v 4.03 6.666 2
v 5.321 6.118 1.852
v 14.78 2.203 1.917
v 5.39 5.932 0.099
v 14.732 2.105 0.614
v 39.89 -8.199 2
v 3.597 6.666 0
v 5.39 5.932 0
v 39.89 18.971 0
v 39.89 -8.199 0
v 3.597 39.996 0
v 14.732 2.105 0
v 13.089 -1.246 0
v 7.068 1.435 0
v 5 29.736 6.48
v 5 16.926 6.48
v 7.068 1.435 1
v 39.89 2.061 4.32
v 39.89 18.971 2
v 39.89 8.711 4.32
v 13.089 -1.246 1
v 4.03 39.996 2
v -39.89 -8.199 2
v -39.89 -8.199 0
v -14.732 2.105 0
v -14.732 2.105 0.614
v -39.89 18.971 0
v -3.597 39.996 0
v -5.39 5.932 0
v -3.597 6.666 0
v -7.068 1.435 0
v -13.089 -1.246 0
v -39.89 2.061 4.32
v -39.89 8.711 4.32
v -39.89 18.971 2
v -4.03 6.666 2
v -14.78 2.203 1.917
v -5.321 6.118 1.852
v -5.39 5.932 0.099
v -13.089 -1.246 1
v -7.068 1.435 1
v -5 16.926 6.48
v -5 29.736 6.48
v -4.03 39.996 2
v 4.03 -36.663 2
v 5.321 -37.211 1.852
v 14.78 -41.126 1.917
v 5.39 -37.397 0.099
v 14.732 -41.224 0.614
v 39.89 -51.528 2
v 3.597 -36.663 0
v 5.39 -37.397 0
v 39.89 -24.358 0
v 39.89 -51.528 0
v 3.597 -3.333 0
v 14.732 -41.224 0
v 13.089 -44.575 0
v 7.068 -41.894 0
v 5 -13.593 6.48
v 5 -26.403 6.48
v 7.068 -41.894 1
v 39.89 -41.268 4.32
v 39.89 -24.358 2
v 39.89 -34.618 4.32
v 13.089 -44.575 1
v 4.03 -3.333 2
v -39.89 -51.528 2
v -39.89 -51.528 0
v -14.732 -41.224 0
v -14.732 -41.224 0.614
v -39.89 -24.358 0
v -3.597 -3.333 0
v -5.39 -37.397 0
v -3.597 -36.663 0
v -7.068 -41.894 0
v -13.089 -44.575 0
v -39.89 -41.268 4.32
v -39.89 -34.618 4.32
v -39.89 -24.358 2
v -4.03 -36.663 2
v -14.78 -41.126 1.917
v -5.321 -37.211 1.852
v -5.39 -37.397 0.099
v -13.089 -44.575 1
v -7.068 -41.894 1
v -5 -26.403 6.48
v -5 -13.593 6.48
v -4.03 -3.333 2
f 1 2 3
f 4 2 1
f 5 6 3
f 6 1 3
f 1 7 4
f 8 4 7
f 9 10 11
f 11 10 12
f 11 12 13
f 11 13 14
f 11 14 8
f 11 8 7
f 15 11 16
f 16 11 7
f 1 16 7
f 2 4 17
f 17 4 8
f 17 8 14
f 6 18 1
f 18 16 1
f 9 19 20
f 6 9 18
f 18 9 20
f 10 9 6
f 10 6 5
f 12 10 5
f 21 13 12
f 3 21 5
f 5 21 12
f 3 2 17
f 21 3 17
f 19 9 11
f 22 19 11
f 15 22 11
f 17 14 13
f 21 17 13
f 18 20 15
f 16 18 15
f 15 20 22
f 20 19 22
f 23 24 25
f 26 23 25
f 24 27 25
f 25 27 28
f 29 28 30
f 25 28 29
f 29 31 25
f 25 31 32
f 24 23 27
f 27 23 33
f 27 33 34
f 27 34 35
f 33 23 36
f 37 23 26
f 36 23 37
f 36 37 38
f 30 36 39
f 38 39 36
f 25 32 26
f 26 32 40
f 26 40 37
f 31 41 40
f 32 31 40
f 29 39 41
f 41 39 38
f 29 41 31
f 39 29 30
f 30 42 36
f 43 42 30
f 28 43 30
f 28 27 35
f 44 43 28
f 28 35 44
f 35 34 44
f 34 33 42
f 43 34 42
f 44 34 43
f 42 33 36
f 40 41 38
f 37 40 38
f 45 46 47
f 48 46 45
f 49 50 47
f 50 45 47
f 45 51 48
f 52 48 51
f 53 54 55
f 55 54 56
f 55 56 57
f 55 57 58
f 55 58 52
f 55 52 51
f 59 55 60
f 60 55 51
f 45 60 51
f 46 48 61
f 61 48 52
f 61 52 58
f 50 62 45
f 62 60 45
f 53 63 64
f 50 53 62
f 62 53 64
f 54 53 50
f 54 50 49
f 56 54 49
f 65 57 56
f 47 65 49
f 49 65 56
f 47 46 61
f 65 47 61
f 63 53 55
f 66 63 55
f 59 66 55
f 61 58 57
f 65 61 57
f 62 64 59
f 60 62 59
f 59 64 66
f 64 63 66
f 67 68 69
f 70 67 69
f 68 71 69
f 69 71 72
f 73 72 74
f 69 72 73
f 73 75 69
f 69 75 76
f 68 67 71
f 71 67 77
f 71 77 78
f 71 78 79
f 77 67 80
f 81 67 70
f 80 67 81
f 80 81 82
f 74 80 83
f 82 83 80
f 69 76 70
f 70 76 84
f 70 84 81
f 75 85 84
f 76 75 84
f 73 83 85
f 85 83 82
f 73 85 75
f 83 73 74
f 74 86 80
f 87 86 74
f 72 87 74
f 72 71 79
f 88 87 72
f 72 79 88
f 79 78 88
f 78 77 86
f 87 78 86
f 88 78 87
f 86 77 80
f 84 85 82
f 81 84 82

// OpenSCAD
$fn=30;
base_thick=6.48;
tip_thick=4.32;
base_len=33.33;
tip_len=30.3;
width=34.89;
edge=2;
topoff=10.26;

back_base=14*width/45;
back_tip=8.5*width/45;
back_len=5.4*width/45;

translate([ 5,0.7*base_len,0]) strut();
translate([-5,0.7*base_len,0]) mirror([1,0,0]) strut();

translate([ 5,-0.6*base_len,0]) strut();
translate([-5,-0.6*base_len,0]) mirror([1,0,0]) strut();

module strut() {
    ifrac=0.8;
    ofrac=1-ifrac;
    inner_tip=ifrac*back_tip;
    outer_tip=-ofrac*back_tip;
    union() {
        polyhedron(
            points = [
                // base: 0 : 3
                [-base_thick*sin(12.5), base_len/2, 0], [-base_thick*sin(12.5), -base_len/2, 0], [width, -tip_len/2-width*sin(28), 0], [width, tip_len/2-width*sin(34), 0],
                // top, right: 4 : 7
                [-(base_thick-edge)*sin(12.5), base_len/2, edge], [0, base_len/2-topoff, base_thick], [0, -base_len/2+topoff, base_thick], [-(base_thick-edge)*sin(12.5), -base_len/2, edge],
                // top, left: 8 : 11
                [width, -tip_len/2-width*sin(28), edge], [width, -tip_len/2+topoff-width*sin(28), tip_thick], [width, tip_len/2-topoff-width*sin(34), tip_thick], [width, tip_len/2-width*sin(34), edge],
            ],
            triangles = [
                //base:0,1
                [0, 3, 1], [3, 2, 1],
                // right: 2 : 5
                [1, 7, 6], [1, 6, 0], [6, 5, 0], [0, 5, 4],
                // back: 6, 7
                [1, 2, 8], [1, 8, 7],
                // left: 8 : 11
                [3, 11, 10], [3, 10, 2], [10, 9, 2], [2, 9, 8],
                // front: 12, 13
                [0, 4, 11], [11, 3, 0],
                // front,top: 14, 15
                [4, 5, 10], [10, 11, 4],
                // top: 16, 17
                [5, 6, 10], [6, 9, 10],
                // back,top: 14, 15
                [6, 7, 9], [7, 8, 9],
            ]
        );
        translate([1.25*back_len*cos(38),-base_len*sin(38),0]) rotate([0,0,-24]) polyhedron(
            points = [
                [-back_base/2, back_len/2, 0], [back_base/2, back_len/2, 0], [inner_tip, -back_len/2, 0], [outer_tip, -back_len/2, 0],
                [-back_base/2, back_len/2, edge], [back_base/2, back_len/2, edge], [inner_tip, -back_len/2, edge/2], [outer_tip, -back_len/2, edge/2],
            ],
            triangles = [
                // base: 0, 1
                [1, 0, 3], [3, 2, 1],
                // front; 2, 3
                [0, 1, 5], [5, 4, 0],
                // left: 4, 5
                [0, 4, 7], [7, 3, 0],
                // back: 6, 7
                [3, 7, 6], [6, 2, 3],
                // right: 8, 9
                [2, 6, 5], [5, 1, 2],
                // top: 10, 11
                [4, 5, 6], [6, 7, 4],
            ]
        );
    }
}
